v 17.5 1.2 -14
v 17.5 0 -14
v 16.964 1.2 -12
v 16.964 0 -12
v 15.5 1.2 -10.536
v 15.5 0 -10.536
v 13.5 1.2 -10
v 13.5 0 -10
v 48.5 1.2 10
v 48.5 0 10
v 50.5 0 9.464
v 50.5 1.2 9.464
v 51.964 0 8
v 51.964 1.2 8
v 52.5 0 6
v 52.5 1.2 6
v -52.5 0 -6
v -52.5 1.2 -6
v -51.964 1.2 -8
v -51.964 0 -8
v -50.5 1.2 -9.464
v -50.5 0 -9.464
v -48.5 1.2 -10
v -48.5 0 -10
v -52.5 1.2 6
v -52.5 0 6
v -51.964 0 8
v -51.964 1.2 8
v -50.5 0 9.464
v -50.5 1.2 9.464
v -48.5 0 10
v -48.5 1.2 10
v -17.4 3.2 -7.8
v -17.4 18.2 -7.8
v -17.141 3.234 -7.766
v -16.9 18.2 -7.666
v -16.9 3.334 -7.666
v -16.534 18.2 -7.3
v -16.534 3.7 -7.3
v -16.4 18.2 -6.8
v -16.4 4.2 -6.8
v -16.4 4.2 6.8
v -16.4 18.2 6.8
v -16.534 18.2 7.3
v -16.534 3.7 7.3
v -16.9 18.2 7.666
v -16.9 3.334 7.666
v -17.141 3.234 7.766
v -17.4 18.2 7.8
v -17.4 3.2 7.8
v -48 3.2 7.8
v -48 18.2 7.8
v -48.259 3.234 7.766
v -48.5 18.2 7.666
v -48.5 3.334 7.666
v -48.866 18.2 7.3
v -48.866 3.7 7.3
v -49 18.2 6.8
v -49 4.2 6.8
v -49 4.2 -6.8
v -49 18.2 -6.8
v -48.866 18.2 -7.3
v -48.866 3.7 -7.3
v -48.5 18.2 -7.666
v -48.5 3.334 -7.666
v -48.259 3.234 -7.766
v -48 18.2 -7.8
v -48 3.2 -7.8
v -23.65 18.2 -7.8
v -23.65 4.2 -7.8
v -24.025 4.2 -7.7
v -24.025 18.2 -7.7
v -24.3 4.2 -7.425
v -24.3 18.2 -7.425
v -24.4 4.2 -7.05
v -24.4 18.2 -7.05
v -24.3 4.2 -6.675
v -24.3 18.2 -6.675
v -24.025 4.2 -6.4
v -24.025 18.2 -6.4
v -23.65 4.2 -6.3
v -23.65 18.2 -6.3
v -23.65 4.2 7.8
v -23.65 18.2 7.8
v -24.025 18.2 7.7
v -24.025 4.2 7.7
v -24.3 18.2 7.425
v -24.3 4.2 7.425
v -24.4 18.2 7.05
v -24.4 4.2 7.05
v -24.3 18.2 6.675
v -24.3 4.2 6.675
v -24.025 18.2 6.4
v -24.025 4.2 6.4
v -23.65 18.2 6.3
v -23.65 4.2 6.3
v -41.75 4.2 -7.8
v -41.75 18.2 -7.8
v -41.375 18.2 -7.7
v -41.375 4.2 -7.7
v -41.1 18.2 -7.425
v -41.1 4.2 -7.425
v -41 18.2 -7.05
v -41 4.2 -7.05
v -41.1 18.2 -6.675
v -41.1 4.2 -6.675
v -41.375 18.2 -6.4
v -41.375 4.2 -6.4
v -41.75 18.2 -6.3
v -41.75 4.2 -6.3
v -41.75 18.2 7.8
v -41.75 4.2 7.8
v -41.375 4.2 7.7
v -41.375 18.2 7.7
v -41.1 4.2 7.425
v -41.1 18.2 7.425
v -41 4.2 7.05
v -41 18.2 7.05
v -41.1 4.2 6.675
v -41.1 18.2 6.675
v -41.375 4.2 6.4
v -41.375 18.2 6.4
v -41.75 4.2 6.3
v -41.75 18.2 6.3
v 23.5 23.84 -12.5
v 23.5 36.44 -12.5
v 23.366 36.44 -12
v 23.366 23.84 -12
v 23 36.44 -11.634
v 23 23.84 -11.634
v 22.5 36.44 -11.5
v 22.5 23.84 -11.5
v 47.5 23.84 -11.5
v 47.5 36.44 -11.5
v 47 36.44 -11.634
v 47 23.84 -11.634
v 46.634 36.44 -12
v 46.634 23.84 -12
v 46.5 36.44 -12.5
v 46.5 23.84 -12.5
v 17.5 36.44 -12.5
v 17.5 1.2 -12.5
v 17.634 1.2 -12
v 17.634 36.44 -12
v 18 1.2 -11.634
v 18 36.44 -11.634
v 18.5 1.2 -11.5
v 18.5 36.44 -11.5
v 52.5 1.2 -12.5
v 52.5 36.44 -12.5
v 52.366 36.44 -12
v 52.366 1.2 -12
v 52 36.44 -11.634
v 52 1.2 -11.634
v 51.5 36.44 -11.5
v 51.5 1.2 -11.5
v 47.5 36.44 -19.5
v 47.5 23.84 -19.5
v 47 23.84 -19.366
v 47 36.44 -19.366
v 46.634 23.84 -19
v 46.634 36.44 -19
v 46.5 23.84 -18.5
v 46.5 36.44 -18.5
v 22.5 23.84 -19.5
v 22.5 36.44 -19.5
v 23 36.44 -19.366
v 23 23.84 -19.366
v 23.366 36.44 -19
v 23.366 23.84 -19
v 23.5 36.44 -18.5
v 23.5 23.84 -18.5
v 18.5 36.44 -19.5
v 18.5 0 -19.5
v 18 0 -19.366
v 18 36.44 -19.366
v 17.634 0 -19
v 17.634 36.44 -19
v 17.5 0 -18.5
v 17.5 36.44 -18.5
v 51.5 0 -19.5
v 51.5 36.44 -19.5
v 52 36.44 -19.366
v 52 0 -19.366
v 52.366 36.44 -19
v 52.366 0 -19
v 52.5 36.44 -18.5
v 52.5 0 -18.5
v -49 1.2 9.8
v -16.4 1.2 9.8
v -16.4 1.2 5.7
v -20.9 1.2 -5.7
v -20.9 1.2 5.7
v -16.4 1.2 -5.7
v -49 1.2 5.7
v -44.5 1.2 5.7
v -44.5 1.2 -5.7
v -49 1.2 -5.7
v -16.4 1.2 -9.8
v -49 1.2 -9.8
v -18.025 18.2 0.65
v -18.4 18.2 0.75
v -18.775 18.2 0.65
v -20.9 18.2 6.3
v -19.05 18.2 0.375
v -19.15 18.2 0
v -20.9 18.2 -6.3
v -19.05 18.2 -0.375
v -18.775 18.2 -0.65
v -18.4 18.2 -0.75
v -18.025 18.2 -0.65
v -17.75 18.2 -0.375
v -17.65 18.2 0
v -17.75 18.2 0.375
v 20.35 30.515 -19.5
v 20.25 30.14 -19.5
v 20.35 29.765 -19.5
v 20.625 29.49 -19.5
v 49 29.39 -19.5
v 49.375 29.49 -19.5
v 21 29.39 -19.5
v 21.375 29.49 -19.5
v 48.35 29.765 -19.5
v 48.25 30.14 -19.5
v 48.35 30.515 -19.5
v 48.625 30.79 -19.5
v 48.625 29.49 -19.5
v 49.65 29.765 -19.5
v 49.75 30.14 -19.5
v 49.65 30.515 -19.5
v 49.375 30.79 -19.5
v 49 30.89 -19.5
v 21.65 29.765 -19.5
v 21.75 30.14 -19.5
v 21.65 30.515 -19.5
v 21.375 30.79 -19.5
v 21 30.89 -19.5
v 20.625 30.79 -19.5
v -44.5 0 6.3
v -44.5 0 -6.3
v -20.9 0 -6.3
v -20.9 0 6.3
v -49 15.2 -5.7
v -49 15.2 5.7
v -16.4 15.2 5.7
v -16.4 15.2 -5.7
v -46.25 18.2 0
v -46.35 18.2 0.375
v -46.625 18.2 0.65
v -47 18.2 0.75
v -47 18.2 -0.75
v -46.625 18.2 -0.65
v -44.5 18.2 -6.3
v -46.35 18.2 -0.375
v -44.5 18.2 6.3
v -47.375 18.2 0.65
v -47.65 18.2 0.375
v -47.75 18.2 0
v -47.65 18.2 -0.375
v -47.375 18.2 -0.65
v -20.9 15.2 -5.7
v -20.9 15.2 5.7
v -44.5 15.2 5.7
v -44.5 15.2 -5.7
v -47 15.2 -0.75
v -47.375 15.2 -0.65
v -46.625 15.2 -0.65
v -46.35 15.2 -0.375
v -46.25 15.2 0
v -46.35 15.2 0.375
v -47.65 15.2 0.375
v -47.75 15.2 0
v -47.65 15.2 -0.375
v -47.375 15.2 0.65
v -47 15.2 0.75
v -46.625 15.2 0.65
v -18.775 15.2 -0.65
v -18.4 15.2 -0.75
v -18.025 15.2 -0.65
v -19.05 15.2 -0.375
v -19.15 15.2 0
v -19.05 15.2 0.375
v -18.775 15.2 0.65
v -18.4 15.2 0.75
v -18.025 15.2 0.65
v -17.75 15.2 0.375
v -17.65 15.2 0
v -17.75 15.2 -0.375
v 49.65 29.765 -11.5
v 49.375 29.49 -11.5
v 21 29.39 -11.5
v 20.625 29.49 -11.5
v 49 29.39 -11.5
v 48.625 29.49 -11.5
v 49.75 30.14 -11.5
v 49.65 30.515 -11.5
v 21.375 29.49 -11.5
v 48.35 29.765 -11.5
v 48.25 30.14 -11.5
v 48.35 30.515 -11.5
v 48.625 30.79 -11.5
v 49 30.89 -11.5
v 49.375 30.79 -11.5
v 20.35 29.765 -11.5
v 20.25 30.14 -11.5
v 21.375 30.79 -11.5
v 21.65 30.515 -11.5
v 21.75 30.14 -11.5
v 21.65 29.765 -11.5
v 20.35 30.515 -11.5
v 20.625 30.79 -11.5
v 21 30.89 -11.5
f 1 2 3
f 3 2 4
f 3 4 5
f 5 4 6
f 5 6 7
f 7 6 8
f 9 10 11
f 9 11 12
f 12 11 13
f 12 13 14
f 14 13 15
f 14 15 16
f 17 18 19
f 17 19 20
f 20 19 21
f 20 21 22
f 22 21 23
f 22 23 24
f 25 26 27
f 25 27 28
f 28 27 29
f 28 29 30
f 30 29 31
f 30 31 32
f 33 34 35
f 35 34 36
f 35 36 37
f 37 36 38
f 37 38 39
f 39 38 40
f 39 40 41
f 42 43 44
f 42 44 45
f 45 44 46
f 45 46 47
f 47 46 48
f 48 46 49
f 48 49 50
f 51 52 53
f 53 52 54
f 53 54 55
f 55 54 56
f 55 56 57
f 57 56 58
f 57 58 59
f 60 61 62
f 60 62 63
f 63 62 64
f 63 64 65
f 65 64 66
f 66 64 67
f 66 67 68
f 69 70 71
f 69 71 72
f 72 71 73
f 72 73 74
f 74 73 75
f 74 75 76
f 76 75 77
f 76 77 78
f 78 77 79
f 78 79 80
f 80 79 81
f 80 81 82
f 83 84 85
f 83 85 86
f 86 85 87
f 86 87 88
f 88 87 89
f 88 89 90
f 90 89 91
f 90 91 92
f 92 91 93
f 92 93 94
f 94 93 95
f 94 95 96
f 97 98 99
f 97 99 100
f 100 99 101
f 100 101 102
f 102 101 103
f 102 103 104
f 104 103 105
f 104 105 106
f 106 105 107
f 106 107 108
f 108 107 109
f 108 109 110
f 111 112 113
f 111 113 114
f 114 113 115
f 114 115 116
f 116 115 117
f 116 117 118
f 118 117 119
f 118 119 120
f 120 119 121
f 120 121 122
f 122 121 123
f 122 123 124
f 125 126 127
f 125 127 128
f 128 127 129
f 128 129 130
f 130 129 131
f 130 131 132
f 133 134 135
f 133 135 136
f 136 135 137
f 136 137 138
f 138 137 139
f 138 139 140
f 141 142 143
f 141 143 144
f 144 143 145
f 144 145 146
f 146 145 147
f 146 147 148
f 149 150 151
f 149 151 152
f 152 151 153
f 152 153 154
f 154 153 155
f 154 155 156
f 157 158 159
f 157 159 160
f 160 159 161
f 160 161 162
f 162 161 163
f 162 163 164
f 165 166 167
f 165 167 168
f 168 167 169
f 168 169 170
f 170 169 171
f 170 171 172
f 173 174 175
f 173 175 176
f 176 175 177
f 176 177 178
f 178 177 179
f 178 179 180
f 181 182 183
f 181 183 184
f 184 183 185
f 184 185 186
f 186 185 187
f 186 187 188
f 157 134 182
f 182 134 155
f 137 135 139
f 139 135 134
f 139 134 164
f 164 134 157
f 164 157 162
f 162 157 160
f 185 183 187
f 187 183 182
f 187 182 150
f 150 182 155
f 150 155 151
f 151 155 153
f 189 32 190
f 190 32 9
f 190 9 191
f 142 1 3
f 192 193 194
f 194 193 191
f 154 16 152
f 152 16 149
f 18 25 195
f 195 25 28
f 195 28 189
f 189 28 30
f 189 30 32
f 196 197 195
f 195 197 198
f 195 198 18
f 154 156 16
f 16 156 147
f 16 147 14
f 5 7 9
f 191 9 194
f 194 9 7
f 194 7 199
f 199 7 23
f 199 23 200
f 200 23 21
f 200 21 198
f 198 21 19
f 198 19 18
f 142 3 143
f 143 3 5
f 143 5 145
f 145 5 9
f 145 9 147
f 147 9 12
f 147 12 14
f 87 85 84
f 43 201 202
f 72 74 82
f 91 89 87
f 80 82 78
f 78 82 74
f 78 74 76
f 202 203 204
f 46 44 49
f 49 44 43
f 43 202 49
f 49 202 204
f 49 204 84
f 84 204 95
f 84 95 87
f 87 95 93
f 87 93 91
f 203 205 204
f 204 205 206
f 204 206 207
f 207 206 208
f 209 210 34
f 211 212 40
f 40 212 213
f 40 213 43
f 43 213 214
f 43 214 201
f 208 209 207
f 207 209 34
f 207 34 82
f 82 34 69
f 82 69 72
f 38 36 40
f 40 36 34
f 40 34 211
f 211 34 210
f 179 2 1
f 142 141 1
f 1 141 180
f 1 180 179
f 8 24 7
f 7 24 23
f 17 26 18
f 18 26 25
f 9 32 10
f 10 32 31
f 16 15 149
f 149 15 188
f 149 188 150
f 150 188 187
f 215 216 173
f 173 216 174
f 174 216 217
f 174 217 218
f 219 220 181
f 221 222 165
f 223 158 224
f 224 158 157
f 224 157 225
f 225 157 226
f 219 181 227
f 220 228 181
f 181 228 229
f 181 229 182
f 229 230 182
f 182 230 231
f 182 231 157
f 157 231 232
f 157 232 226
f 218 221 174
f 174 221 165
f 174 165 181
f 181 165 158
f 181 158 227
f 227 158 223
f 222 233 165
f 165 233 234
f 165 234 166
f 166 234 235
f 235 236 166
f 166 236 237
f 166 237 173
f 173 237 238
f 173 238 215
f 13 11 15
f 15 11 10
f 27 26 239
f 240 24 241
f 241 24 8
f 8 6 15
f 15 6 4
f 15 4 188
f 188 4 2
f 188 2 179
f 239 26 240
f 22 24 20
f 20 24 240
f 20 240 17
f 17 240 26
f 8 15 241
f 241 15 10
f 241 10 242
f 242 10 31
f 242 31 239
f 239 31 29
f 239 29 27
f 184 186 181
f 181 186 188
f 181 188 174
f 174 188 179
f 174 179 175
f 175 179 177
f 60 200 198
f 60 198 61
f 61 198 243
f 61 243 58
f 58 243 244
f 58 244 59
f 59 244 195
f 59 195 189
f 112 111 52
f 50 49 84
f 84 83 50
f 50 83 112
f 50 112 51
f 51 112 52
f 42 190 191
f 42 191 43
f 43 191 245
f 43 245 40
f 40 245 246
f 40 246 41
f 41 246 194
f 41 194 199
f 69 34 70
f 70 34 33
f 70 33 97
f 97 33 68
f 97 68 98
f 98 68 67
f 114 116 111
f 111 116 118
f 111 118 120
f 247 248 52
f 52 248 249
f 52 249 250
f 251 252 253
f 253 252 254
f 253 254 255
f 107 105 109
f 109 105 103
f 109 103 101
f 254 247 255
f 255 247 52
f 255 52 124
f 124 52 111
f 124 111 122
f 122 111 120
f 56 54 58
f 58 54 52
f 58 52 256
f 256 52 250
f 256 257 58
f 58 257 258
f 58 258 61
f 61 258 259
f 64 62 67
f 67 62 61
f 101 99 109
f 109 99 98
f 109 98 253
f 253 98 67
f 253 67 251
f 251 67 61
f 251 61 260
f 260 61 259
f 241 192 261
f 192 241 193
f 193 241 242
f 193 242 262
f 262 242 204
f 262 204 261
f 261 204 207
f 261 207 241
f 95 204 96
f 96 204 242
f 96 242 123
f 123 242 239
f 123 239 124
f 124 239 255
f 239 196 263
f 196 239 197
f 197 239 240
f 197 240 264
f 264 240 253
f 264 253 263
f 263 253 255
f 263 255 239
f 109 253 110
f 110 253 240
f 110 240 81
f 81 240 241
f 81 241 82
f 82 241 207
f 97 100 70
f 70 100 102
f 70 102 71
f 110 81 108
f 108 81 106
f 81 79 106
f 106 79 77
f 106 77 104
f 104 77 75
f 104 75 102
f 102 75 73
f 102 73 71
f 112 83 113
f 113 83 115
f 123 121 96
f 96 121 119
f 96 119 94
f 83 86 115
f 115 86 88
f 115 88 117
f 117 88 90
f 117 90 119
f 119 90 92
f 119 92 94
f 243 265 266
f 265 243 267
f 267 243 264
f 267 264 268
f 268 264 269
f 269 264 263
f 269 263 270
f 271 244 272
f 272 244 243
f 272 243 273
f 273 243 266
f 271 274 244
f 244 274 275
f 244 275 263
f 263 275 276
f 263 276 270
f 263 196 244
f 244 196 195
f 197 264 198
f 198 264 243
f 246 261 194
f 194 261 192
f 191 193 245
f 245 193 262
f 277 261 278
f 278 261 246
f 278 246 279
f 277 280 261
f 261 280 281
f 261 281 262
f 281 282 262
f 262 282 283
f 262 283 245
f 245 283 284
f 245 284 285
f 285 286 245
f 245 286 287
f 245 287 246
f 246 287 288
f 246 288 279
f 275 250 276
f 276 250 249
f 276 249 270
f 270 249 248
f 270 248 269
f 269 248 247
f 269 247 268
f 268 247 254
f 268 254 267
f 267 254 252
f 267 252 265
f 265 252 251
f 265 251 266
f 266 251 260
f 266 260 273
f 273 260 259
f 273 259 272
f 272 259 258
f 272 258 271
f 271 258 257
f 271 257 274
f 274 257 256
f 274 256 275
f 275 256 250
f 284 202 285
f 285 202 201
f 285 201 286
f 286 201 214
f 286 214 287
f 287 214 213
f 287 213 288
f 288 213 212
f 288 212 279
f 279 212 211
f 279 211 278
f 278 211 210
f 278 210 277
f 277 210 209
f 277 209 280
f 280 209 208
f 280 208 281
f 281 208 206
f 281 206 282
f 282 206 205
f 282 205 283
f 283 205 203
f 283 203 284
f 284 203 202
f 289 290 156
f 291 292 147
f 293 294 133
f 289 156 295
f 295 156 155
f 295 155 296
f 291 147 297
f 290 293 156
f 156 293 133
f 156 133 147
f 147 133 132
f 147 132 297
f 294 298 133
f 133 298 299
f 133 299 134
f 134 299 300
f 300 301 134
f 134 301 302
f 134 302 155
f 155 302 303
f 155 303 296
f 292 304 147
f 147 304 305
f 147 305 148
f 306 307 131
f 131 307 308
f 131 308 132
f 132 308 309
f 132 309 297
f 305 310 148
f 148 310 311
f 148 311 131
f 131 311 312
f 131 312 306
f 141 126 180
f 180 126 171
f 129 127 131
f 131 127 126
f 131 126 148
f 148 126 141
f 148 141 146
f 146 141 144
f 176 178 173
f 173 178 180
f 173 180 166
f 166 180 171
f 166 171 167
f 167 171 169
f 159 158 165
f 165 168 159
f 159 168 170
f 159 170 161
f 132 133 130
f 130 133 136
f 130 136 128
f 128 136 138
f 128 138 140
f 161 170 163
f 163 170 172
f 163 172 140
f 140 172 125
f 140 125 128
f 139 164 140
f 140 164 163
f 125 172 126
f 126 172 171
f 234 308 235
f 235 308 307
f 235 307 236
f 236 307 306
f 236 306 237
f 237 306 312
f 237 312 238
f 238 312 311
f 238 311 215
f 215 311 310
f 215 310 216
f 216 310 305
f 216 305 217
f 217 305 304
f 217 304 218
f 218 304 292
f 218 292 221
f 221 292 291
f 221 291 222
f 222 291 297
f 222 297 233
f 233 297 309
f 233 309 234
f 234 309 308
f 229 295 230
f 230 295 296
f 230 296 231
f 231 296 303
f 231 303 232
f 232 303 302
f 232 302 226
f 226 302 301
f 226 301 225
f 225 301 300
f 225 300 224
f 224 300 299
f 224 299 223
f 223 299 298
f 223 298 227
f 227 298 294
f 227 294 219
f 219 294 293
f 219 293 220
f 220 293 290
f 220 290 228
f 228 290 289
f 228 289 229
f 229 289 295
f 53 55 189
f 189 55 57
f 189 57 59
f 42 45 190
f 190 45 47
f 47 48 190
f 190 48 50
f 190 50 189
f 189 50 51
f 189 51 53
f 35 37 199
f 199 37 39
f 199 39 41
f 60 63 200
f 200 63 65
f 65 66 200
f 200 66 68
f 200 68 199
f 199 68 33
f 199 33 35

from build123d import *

# Parameters (mm, degrees)
ESBO_O1_W                = 35
ESBO_O1_H                = 9.5
ESBO_O1_W_2              = 105
ESBO_O1_H_2              = 20
BASE_DEPTH               = 1.2
ESBO_O2_W                = 32.6
ESBO_O2_H                = 15.6
SUPORTE_1_DEPTH          = 17
ESBO_O3_W                = 23.6
ESBO_O3_H                = 12.6
CORTE_EXTRUS_O1_DEPTH    = 19.5
ESBO_O4_W                = 16.6
ESBO_O4_H                = 17.237895569
CORTE_EXTRUS_O2_DEPTH    = 19.5
ESBO_O5_W                = 11.4
ESBO_O5_H                = 14
CORTE_EXTRUS_O3_DEPTH    = 36.5
ESBO_O6_R                = 0.75
CORTE_EXTRUS_O4_DEPTH    = 7.5
ESBO_O7_W                = 35
ESBO_O7_H                = 8
RESSALTO_EXTRUS_O3_DEPTH = 35.24
ESBO_O9_W                = 23
ESBO_O9_H                = 25.2
CORTE_EXTRUS_O5_DEPTH    = 22.5
ESBO_O10_R               = 0.75
CORTE_EXTRUS_O6_DEPTH    = 22.5
CHANFRO1_SIZE            = 2
CHANFRO2_SIZE            = 2
FILETE1_R                = 1
FILETE2_R                = 1
FILETE3_R                = 1
FILETE4_R                = 1
FILETE5_R                = 1
FILETE6_R                = 1
FILETE7_R                = 1
FILETE8_R                = 1
FILETE9_RADIUS           = 0.75
FILETE9_LENGTH           = 14
FILETE10_RADIUS          = 0.75
FILETE10_LENGTH          = 14
FILETE11_RADIUS          = 0.75
FILETE11_LENGTH          = 14
FILETE12_RADIUS          = 0.75
FILETE12_LENGTH          = 14
FILETE13_R               = 1
FILETE14_R               = 1
FILETE15_R               = 1
FILETE16_R               = 1
FILETE17_R               = 4
FILETE18_R               = 4
FILETE19_R               = 4
FILETE20_R               = 4


with BuildPart() as part:
    # Esboço1 → Base (new body)
    with BuildSketch(Plane(origin=(0, 0, 0), x_dir=(1, 0, 0), z_dir=(0, 1, 0))):
        with Locations((35, 14.75)):
            Rectangle(ESBO_O1_W, ESBO_O1_H)
        Rectangle(ESBO_O1_W_2, ESBO_O1_H_2)
    extrude(amount=BASE_DEPTH)

    # Esboço2 → Suporte 1 (add)
    with BuildSketch(Plane(origin=(0, 1.2, 0), x_dir=(1, 0, 0), z_dir=(0, 1, 0))):
        with Locations((-32.7, 0)):
            Rectangle(ESBO_O2_W, ESBO_O2_H)
    extrude(amount=SUPORTE_1_DEPTH)

    # Esboço3 → Corte-extrusão1 (cut)
    with BuildSketch(Plane(origin=(0, 18.2, 0), x_dir=(1, 0, 0), z_dir=(0, 1, 0))):
        with Locations((-32.7, 0)):
            Rectangle(ESBO_O3_W, ESBO_O3_H)
    extrude(amount=-CORTE_EXTRUS_O1_DEPTH, mode=Mode.SUBTRACT)

    # Esboço4 → Corte-extrusão2 (cut)
    with BuildSketch(Plane.XY.offset(7.8)):
        with Locations((-32.7, 12.818947785)):
            Rectangle(ESBO_O4_W, ESBO_O4_H)
    extrude(amount=-CORTE_EXTRUS_O2_DEPTH, mode=Mode.SUBTRACT)

    # Esboço5 → Corte-extrusão3 (cut)
    with BuildSketch(Plane(origin=(-16.4, 0, 0), x_dir=(0, 0, -1), z_dir=(1, 0, 0))):
        with Locations((0, 8.2)):
            Rectangle(ESBO_O5_W, ESBO_O5_H)
    extrude(amount=-CORTE_EXTRUS_O3_DEPTH, mode=Mode.SUBTRACT)

    # Esboço6 → Corte-extrusão4 (cut)
    with BuildSketch(Plane(origin=(0, 18.2, 0), x_dir=(1, 0, 0), z_dir=(0, 1, 0))):
        with Locations(Location((-47, 0, 0), (0, 0, 270))):
            Circle(ESBO_O6_R)
        with Locations(Location((-18.4, 0, 0), (0, 0, 270))):
            Circle(ESBO_O6_R)
    extrude(amount=-CORTE_EXTRUS_O4_DEPTH, mode=Mode.SUBTRACT)

    # Esboço7 → Ressalto-extrusão3 (add)
    with BuildSketch(Plane(origin=(0, 1.2, 0), x_dir=(1, 0, 0), z_dir=(0, 1, 0))):
        with Locations((35, 15.5)):
            Rectangle(ESBO_O7_W, ESBO_O7_H)
    extrude(amount=RESSALTO_EXTRUS_O3_DEPTH)

    # Esboço9 → Corte-extrusão5 (cut)
    with BuildSketch(Plane.XY.offset(-11.5)):
        with Locations((35, 36.44)):
            Rectangle(ESBO_O9_W, ESBO_O9_H)
    extrude(amount=-CORTE_EXTRUS_O5_DEPTH, mode=Mode.SUBTRACT)

    # Esboço10 → Corte-extrusão6 (cut)
    with BuildSketch(Plane.XY.offset(-11.5)):
        with Locations((21, 30.14)):
            Circle(ESBO_O10_R)
        with Locations((49, 30.14)):
            Circle(ESBO_O10_R)
    extrude(amount=-CORTE_EXTRUS_O6_DEPTH, mode=Mode.SUBTRACT)

    # Chanfro1
    chanfro1_edges = [part.edges().sort_by_distance(p)[0] for p in [
        (-32.7, 1.2, 7.8),
    ]]
    chamfer(chanfro1_edges, length=CHANFRO1_SIZE)

    # Chanfro2
    chanfro2_edges = [part.edges().sort_by_distance(p)[0] for p in [
        (-32.7, 1.2, -7.8),
    ]]
    chamfer(chanfro2_edges, length=CHANFRO2_SIZE)

    # Filete1
    filete1_edges = [part.edges().sort_by_distance(p)[0] for p in [
        (52.5, 18.22, -19.5),
    ]]
    fillet(filete1_edges, radius=FILETE1_R)

    # Filete2
    filete2_edges = [part.edges().sort_by_distance(p)[0] for p in [
        (17.5, 18.22, -19.5),
    ]]
    fillet(filete2_edges, radius=FILETE2_R)

    # Filete3
    filete3_edges = [part.edges().sort_by_distance(p)[0] for p in [
        (23.5, 30.14, -19.5),
    ]]
    fillet(filete3_edges, radius=FILETE3_R)

    # Filete4
    filete4_edges = [part.edges().sort_by_distance(p)[0] for p in [
        (46.5, 30.14, -19.5),
    ]]
    fillet(filete4_edges, radius=FILETE4_R)

    # Filete5
    filete5_edges = [part.edges().sort_by_distance(p)[0] for p in [
        (52.5, 18.82, -11.5),
    ]]
    fillet(filete5_edges, radius=FILETE5_R)

    # Filete6
    filete6_edges = [part.edges().sort_by_distance(p)[0] for p in [
        (17.5, 18.82, -11.5),
    ]]
    fillet(filete6_edges, radius=FILETE6_R)

    # Filete7
    filete7_edges = [part.edges().sort_by_distance(p)[0] for p in [
        (46.5, 30.14, -11.5),
    ]]
    fillet(filete7_edges, radius=FILETE7_R)

    # Filete8
    filete8_edges = [part.edges().sort_by_distance(p)[0] for p in [
        (23.5, 30.14, -11.5),
    ]]
    fillet(filete8_edges, radius=FILETE8_R)

    # Filete9: full round fillet: the end face becomes a half cylinder, R = half its width
    filete9_face = Plane((-41, 11.2, 7.05), x_dir=(0, -1, 0), z_dir=(1, 0, 0))  # on the end face: x along it, z out of the body
    filete9_slab = filete9_face.offset(-FILETE9_RADIUS / 2) * Box(FILETE9_LENGTH, 2 * FILETE9_RADIUS, FILETE9_RADIUS, mode=Mode.PRIVATE)  # the body's end, R deep
    filete9_round = Plane((-41.75, 11.2, 7.05), x_dir=(1, 0, 0), z_dir=(0, -1, 0)) * Cylinder(FILETE9_RADIUS, FILETE9_LENGTH, mode=Mode.PRIVATE)  # its axis R under the face
    add(filete9_slab - filete9_round, mode=Mode.SUBTRACT)

    # Filete10: full round fillet: the end face becomes a half cylinder, R = half its width
    filete10_face = Plane((-41, 11.2, -7.05), x_dir=(0, -1, 0), z_dir=(1, 0, 0))  # on the end face: x along it, z out of the body
    filete10_slab = filete10_face.offset(-FILETE10_RADIUS / 2) * Box(FILETE10_LENGTH, 2 * FILETE10_RADIUS, FILETE10_RADIUS, mode=Mode.PRIVATE)  # the body's end, R deep
    filete10_round = Plane((-41.75, 11.2, -7.05), x_dir=(1, 0, 0), z_dir=(0, -1, 0)) * Cylinder(FILETE10_RADIUS, FILETE10_LENGTH, mode=Mode.PRIVATE)  # its axis R under the face
    add(filete10_slab - filete10_round, mode=Mode.SUBTRACT)

    # Filete11: full round fillet: the end face becomes a half cylinder, R = half its width
    filete11_face = Plane((-24.4, 11.2, 7.05), x_dir=(0, 1, 0), z_dir=(-1, 0, 0))  # on the end face: x along it, z out of the body
    filete11_slab = filete11_face.offset(-FILETE11_RADIUS / 2) * Box(FILETE11_LENGTH, 2 * FILETE11_RADIUS, FILETE11_RADIUS, mode=Mode.PRIVATE)  # the body's end, R deep
    filete11_round = Plane((-23.65, 11.2, 7.05), x_dir=(-1, 0, 0), z_dir=(0, 1, 0)) * Cylinder(FILETE11_RADIUS, FILETE11_LENGTH, mode=Mode.PRIVATE)  # its axis R under the face
    add(filete11_slab - filete11_round, mode=Mode.SUBTRACT)

    # Filete12: full round fillet: the end face becomes a half cylinder, R = half its width
    filete12_face = Plane((-24.4, 11.2, -7.05), x_dir=(0, 1, 0), z_dir=(-1, 0, 0))  # on the end face: x along it, z out of the body
    filete12_slab = filete12_face.offset(-FILETE12_RADIUS / 2) * Box(FILETE12_LENGTH, 2 * FILETE12_RADIUS, FILETE12_RADIUS, mode=Mode.PRIVATE)  # the body's end, R deep
    filete12_round = Plane((-23.65, 11.2, -7.05), x_dir=(-1, 0, 0), z_dir=(0, 1, 0)) * Cylinder(FILETE12_RADIUS, FILETE12_LENGTH, mode=Mode.PRIVATE)  # its axis R under the face
    add(filete12_slab - filete12_round, mode=Mode.SUBTRACT)

    # Filete13
    filete13_edges = [part.edges().sort_by_distance(p)[0] for p in [
        (-49, 10.7, -7.8),
    ]]
    fillet(filete13_edges, radius=FILETE13_R)

    # Filete14
    filete14_edges = [part.edges().sort_by_distance(p)[0] for p in [
        (-49, 10.7, 7.8),
    ]]
    fillet(filete14_edges, radius=FILETE14_R)

    # Filete15
    filete15_edges = [part.edges().sort_by_distance(p)[0] for p in [
        (-16.4, 10.7, 7.8),
    ]]
    fillet(filete15_edges, radius=FILETE15_R)

    # Filete16
    filete16_edges = [part.edges().sort_by_distance(p)[0] for p in [
        (-16.4, 10.7, -7.8),
    ]]
    fillet(filete16_edges, radius=FILETE16_R)

    # Filete17
    filete17_edges = [part.edges().sort_by_distance(p)[0] for p in [
        (-52.5, 0.6, 10),
    ]]
    fillet(filete17_edges, radius=FILETE17_R)

    # Filete18
    filete18_edges = [part.edges().sort_by_distance(p)[0] for p in [
        (-52.5, 0.6, -10),
    ]]
    fillet(filete18_edges, radius=FILETE18_R)

    # Filete19
    filete19_edges = [part.edges().sort_by_distance(p)[0] for p in [
        (52.5, 0.6, 10),
    ]]
    fillet(filete19_edges, radius=FILETE19_R)

    # Filete20
    # the kernel refuses this fillet: 4 mm, written as the material it adds along each edge
    with BuildSketch(Plane(origin=(17.5, 0, -10), x_dir=(-1, 0, 0), z_dir=(0, 1, 0))) as filete20_piece_1:
        with BuildLine():
            CenterArc((FILETE20_R, -FILETE20_R), FILETE20_R, 90, 90)
            Line((0, -FILETE20_R), (0, 0))
            Line((0, 0), (FILETE20_R, 0))
        make_face()
    extrude(amount=1.2)


solid = part.part
